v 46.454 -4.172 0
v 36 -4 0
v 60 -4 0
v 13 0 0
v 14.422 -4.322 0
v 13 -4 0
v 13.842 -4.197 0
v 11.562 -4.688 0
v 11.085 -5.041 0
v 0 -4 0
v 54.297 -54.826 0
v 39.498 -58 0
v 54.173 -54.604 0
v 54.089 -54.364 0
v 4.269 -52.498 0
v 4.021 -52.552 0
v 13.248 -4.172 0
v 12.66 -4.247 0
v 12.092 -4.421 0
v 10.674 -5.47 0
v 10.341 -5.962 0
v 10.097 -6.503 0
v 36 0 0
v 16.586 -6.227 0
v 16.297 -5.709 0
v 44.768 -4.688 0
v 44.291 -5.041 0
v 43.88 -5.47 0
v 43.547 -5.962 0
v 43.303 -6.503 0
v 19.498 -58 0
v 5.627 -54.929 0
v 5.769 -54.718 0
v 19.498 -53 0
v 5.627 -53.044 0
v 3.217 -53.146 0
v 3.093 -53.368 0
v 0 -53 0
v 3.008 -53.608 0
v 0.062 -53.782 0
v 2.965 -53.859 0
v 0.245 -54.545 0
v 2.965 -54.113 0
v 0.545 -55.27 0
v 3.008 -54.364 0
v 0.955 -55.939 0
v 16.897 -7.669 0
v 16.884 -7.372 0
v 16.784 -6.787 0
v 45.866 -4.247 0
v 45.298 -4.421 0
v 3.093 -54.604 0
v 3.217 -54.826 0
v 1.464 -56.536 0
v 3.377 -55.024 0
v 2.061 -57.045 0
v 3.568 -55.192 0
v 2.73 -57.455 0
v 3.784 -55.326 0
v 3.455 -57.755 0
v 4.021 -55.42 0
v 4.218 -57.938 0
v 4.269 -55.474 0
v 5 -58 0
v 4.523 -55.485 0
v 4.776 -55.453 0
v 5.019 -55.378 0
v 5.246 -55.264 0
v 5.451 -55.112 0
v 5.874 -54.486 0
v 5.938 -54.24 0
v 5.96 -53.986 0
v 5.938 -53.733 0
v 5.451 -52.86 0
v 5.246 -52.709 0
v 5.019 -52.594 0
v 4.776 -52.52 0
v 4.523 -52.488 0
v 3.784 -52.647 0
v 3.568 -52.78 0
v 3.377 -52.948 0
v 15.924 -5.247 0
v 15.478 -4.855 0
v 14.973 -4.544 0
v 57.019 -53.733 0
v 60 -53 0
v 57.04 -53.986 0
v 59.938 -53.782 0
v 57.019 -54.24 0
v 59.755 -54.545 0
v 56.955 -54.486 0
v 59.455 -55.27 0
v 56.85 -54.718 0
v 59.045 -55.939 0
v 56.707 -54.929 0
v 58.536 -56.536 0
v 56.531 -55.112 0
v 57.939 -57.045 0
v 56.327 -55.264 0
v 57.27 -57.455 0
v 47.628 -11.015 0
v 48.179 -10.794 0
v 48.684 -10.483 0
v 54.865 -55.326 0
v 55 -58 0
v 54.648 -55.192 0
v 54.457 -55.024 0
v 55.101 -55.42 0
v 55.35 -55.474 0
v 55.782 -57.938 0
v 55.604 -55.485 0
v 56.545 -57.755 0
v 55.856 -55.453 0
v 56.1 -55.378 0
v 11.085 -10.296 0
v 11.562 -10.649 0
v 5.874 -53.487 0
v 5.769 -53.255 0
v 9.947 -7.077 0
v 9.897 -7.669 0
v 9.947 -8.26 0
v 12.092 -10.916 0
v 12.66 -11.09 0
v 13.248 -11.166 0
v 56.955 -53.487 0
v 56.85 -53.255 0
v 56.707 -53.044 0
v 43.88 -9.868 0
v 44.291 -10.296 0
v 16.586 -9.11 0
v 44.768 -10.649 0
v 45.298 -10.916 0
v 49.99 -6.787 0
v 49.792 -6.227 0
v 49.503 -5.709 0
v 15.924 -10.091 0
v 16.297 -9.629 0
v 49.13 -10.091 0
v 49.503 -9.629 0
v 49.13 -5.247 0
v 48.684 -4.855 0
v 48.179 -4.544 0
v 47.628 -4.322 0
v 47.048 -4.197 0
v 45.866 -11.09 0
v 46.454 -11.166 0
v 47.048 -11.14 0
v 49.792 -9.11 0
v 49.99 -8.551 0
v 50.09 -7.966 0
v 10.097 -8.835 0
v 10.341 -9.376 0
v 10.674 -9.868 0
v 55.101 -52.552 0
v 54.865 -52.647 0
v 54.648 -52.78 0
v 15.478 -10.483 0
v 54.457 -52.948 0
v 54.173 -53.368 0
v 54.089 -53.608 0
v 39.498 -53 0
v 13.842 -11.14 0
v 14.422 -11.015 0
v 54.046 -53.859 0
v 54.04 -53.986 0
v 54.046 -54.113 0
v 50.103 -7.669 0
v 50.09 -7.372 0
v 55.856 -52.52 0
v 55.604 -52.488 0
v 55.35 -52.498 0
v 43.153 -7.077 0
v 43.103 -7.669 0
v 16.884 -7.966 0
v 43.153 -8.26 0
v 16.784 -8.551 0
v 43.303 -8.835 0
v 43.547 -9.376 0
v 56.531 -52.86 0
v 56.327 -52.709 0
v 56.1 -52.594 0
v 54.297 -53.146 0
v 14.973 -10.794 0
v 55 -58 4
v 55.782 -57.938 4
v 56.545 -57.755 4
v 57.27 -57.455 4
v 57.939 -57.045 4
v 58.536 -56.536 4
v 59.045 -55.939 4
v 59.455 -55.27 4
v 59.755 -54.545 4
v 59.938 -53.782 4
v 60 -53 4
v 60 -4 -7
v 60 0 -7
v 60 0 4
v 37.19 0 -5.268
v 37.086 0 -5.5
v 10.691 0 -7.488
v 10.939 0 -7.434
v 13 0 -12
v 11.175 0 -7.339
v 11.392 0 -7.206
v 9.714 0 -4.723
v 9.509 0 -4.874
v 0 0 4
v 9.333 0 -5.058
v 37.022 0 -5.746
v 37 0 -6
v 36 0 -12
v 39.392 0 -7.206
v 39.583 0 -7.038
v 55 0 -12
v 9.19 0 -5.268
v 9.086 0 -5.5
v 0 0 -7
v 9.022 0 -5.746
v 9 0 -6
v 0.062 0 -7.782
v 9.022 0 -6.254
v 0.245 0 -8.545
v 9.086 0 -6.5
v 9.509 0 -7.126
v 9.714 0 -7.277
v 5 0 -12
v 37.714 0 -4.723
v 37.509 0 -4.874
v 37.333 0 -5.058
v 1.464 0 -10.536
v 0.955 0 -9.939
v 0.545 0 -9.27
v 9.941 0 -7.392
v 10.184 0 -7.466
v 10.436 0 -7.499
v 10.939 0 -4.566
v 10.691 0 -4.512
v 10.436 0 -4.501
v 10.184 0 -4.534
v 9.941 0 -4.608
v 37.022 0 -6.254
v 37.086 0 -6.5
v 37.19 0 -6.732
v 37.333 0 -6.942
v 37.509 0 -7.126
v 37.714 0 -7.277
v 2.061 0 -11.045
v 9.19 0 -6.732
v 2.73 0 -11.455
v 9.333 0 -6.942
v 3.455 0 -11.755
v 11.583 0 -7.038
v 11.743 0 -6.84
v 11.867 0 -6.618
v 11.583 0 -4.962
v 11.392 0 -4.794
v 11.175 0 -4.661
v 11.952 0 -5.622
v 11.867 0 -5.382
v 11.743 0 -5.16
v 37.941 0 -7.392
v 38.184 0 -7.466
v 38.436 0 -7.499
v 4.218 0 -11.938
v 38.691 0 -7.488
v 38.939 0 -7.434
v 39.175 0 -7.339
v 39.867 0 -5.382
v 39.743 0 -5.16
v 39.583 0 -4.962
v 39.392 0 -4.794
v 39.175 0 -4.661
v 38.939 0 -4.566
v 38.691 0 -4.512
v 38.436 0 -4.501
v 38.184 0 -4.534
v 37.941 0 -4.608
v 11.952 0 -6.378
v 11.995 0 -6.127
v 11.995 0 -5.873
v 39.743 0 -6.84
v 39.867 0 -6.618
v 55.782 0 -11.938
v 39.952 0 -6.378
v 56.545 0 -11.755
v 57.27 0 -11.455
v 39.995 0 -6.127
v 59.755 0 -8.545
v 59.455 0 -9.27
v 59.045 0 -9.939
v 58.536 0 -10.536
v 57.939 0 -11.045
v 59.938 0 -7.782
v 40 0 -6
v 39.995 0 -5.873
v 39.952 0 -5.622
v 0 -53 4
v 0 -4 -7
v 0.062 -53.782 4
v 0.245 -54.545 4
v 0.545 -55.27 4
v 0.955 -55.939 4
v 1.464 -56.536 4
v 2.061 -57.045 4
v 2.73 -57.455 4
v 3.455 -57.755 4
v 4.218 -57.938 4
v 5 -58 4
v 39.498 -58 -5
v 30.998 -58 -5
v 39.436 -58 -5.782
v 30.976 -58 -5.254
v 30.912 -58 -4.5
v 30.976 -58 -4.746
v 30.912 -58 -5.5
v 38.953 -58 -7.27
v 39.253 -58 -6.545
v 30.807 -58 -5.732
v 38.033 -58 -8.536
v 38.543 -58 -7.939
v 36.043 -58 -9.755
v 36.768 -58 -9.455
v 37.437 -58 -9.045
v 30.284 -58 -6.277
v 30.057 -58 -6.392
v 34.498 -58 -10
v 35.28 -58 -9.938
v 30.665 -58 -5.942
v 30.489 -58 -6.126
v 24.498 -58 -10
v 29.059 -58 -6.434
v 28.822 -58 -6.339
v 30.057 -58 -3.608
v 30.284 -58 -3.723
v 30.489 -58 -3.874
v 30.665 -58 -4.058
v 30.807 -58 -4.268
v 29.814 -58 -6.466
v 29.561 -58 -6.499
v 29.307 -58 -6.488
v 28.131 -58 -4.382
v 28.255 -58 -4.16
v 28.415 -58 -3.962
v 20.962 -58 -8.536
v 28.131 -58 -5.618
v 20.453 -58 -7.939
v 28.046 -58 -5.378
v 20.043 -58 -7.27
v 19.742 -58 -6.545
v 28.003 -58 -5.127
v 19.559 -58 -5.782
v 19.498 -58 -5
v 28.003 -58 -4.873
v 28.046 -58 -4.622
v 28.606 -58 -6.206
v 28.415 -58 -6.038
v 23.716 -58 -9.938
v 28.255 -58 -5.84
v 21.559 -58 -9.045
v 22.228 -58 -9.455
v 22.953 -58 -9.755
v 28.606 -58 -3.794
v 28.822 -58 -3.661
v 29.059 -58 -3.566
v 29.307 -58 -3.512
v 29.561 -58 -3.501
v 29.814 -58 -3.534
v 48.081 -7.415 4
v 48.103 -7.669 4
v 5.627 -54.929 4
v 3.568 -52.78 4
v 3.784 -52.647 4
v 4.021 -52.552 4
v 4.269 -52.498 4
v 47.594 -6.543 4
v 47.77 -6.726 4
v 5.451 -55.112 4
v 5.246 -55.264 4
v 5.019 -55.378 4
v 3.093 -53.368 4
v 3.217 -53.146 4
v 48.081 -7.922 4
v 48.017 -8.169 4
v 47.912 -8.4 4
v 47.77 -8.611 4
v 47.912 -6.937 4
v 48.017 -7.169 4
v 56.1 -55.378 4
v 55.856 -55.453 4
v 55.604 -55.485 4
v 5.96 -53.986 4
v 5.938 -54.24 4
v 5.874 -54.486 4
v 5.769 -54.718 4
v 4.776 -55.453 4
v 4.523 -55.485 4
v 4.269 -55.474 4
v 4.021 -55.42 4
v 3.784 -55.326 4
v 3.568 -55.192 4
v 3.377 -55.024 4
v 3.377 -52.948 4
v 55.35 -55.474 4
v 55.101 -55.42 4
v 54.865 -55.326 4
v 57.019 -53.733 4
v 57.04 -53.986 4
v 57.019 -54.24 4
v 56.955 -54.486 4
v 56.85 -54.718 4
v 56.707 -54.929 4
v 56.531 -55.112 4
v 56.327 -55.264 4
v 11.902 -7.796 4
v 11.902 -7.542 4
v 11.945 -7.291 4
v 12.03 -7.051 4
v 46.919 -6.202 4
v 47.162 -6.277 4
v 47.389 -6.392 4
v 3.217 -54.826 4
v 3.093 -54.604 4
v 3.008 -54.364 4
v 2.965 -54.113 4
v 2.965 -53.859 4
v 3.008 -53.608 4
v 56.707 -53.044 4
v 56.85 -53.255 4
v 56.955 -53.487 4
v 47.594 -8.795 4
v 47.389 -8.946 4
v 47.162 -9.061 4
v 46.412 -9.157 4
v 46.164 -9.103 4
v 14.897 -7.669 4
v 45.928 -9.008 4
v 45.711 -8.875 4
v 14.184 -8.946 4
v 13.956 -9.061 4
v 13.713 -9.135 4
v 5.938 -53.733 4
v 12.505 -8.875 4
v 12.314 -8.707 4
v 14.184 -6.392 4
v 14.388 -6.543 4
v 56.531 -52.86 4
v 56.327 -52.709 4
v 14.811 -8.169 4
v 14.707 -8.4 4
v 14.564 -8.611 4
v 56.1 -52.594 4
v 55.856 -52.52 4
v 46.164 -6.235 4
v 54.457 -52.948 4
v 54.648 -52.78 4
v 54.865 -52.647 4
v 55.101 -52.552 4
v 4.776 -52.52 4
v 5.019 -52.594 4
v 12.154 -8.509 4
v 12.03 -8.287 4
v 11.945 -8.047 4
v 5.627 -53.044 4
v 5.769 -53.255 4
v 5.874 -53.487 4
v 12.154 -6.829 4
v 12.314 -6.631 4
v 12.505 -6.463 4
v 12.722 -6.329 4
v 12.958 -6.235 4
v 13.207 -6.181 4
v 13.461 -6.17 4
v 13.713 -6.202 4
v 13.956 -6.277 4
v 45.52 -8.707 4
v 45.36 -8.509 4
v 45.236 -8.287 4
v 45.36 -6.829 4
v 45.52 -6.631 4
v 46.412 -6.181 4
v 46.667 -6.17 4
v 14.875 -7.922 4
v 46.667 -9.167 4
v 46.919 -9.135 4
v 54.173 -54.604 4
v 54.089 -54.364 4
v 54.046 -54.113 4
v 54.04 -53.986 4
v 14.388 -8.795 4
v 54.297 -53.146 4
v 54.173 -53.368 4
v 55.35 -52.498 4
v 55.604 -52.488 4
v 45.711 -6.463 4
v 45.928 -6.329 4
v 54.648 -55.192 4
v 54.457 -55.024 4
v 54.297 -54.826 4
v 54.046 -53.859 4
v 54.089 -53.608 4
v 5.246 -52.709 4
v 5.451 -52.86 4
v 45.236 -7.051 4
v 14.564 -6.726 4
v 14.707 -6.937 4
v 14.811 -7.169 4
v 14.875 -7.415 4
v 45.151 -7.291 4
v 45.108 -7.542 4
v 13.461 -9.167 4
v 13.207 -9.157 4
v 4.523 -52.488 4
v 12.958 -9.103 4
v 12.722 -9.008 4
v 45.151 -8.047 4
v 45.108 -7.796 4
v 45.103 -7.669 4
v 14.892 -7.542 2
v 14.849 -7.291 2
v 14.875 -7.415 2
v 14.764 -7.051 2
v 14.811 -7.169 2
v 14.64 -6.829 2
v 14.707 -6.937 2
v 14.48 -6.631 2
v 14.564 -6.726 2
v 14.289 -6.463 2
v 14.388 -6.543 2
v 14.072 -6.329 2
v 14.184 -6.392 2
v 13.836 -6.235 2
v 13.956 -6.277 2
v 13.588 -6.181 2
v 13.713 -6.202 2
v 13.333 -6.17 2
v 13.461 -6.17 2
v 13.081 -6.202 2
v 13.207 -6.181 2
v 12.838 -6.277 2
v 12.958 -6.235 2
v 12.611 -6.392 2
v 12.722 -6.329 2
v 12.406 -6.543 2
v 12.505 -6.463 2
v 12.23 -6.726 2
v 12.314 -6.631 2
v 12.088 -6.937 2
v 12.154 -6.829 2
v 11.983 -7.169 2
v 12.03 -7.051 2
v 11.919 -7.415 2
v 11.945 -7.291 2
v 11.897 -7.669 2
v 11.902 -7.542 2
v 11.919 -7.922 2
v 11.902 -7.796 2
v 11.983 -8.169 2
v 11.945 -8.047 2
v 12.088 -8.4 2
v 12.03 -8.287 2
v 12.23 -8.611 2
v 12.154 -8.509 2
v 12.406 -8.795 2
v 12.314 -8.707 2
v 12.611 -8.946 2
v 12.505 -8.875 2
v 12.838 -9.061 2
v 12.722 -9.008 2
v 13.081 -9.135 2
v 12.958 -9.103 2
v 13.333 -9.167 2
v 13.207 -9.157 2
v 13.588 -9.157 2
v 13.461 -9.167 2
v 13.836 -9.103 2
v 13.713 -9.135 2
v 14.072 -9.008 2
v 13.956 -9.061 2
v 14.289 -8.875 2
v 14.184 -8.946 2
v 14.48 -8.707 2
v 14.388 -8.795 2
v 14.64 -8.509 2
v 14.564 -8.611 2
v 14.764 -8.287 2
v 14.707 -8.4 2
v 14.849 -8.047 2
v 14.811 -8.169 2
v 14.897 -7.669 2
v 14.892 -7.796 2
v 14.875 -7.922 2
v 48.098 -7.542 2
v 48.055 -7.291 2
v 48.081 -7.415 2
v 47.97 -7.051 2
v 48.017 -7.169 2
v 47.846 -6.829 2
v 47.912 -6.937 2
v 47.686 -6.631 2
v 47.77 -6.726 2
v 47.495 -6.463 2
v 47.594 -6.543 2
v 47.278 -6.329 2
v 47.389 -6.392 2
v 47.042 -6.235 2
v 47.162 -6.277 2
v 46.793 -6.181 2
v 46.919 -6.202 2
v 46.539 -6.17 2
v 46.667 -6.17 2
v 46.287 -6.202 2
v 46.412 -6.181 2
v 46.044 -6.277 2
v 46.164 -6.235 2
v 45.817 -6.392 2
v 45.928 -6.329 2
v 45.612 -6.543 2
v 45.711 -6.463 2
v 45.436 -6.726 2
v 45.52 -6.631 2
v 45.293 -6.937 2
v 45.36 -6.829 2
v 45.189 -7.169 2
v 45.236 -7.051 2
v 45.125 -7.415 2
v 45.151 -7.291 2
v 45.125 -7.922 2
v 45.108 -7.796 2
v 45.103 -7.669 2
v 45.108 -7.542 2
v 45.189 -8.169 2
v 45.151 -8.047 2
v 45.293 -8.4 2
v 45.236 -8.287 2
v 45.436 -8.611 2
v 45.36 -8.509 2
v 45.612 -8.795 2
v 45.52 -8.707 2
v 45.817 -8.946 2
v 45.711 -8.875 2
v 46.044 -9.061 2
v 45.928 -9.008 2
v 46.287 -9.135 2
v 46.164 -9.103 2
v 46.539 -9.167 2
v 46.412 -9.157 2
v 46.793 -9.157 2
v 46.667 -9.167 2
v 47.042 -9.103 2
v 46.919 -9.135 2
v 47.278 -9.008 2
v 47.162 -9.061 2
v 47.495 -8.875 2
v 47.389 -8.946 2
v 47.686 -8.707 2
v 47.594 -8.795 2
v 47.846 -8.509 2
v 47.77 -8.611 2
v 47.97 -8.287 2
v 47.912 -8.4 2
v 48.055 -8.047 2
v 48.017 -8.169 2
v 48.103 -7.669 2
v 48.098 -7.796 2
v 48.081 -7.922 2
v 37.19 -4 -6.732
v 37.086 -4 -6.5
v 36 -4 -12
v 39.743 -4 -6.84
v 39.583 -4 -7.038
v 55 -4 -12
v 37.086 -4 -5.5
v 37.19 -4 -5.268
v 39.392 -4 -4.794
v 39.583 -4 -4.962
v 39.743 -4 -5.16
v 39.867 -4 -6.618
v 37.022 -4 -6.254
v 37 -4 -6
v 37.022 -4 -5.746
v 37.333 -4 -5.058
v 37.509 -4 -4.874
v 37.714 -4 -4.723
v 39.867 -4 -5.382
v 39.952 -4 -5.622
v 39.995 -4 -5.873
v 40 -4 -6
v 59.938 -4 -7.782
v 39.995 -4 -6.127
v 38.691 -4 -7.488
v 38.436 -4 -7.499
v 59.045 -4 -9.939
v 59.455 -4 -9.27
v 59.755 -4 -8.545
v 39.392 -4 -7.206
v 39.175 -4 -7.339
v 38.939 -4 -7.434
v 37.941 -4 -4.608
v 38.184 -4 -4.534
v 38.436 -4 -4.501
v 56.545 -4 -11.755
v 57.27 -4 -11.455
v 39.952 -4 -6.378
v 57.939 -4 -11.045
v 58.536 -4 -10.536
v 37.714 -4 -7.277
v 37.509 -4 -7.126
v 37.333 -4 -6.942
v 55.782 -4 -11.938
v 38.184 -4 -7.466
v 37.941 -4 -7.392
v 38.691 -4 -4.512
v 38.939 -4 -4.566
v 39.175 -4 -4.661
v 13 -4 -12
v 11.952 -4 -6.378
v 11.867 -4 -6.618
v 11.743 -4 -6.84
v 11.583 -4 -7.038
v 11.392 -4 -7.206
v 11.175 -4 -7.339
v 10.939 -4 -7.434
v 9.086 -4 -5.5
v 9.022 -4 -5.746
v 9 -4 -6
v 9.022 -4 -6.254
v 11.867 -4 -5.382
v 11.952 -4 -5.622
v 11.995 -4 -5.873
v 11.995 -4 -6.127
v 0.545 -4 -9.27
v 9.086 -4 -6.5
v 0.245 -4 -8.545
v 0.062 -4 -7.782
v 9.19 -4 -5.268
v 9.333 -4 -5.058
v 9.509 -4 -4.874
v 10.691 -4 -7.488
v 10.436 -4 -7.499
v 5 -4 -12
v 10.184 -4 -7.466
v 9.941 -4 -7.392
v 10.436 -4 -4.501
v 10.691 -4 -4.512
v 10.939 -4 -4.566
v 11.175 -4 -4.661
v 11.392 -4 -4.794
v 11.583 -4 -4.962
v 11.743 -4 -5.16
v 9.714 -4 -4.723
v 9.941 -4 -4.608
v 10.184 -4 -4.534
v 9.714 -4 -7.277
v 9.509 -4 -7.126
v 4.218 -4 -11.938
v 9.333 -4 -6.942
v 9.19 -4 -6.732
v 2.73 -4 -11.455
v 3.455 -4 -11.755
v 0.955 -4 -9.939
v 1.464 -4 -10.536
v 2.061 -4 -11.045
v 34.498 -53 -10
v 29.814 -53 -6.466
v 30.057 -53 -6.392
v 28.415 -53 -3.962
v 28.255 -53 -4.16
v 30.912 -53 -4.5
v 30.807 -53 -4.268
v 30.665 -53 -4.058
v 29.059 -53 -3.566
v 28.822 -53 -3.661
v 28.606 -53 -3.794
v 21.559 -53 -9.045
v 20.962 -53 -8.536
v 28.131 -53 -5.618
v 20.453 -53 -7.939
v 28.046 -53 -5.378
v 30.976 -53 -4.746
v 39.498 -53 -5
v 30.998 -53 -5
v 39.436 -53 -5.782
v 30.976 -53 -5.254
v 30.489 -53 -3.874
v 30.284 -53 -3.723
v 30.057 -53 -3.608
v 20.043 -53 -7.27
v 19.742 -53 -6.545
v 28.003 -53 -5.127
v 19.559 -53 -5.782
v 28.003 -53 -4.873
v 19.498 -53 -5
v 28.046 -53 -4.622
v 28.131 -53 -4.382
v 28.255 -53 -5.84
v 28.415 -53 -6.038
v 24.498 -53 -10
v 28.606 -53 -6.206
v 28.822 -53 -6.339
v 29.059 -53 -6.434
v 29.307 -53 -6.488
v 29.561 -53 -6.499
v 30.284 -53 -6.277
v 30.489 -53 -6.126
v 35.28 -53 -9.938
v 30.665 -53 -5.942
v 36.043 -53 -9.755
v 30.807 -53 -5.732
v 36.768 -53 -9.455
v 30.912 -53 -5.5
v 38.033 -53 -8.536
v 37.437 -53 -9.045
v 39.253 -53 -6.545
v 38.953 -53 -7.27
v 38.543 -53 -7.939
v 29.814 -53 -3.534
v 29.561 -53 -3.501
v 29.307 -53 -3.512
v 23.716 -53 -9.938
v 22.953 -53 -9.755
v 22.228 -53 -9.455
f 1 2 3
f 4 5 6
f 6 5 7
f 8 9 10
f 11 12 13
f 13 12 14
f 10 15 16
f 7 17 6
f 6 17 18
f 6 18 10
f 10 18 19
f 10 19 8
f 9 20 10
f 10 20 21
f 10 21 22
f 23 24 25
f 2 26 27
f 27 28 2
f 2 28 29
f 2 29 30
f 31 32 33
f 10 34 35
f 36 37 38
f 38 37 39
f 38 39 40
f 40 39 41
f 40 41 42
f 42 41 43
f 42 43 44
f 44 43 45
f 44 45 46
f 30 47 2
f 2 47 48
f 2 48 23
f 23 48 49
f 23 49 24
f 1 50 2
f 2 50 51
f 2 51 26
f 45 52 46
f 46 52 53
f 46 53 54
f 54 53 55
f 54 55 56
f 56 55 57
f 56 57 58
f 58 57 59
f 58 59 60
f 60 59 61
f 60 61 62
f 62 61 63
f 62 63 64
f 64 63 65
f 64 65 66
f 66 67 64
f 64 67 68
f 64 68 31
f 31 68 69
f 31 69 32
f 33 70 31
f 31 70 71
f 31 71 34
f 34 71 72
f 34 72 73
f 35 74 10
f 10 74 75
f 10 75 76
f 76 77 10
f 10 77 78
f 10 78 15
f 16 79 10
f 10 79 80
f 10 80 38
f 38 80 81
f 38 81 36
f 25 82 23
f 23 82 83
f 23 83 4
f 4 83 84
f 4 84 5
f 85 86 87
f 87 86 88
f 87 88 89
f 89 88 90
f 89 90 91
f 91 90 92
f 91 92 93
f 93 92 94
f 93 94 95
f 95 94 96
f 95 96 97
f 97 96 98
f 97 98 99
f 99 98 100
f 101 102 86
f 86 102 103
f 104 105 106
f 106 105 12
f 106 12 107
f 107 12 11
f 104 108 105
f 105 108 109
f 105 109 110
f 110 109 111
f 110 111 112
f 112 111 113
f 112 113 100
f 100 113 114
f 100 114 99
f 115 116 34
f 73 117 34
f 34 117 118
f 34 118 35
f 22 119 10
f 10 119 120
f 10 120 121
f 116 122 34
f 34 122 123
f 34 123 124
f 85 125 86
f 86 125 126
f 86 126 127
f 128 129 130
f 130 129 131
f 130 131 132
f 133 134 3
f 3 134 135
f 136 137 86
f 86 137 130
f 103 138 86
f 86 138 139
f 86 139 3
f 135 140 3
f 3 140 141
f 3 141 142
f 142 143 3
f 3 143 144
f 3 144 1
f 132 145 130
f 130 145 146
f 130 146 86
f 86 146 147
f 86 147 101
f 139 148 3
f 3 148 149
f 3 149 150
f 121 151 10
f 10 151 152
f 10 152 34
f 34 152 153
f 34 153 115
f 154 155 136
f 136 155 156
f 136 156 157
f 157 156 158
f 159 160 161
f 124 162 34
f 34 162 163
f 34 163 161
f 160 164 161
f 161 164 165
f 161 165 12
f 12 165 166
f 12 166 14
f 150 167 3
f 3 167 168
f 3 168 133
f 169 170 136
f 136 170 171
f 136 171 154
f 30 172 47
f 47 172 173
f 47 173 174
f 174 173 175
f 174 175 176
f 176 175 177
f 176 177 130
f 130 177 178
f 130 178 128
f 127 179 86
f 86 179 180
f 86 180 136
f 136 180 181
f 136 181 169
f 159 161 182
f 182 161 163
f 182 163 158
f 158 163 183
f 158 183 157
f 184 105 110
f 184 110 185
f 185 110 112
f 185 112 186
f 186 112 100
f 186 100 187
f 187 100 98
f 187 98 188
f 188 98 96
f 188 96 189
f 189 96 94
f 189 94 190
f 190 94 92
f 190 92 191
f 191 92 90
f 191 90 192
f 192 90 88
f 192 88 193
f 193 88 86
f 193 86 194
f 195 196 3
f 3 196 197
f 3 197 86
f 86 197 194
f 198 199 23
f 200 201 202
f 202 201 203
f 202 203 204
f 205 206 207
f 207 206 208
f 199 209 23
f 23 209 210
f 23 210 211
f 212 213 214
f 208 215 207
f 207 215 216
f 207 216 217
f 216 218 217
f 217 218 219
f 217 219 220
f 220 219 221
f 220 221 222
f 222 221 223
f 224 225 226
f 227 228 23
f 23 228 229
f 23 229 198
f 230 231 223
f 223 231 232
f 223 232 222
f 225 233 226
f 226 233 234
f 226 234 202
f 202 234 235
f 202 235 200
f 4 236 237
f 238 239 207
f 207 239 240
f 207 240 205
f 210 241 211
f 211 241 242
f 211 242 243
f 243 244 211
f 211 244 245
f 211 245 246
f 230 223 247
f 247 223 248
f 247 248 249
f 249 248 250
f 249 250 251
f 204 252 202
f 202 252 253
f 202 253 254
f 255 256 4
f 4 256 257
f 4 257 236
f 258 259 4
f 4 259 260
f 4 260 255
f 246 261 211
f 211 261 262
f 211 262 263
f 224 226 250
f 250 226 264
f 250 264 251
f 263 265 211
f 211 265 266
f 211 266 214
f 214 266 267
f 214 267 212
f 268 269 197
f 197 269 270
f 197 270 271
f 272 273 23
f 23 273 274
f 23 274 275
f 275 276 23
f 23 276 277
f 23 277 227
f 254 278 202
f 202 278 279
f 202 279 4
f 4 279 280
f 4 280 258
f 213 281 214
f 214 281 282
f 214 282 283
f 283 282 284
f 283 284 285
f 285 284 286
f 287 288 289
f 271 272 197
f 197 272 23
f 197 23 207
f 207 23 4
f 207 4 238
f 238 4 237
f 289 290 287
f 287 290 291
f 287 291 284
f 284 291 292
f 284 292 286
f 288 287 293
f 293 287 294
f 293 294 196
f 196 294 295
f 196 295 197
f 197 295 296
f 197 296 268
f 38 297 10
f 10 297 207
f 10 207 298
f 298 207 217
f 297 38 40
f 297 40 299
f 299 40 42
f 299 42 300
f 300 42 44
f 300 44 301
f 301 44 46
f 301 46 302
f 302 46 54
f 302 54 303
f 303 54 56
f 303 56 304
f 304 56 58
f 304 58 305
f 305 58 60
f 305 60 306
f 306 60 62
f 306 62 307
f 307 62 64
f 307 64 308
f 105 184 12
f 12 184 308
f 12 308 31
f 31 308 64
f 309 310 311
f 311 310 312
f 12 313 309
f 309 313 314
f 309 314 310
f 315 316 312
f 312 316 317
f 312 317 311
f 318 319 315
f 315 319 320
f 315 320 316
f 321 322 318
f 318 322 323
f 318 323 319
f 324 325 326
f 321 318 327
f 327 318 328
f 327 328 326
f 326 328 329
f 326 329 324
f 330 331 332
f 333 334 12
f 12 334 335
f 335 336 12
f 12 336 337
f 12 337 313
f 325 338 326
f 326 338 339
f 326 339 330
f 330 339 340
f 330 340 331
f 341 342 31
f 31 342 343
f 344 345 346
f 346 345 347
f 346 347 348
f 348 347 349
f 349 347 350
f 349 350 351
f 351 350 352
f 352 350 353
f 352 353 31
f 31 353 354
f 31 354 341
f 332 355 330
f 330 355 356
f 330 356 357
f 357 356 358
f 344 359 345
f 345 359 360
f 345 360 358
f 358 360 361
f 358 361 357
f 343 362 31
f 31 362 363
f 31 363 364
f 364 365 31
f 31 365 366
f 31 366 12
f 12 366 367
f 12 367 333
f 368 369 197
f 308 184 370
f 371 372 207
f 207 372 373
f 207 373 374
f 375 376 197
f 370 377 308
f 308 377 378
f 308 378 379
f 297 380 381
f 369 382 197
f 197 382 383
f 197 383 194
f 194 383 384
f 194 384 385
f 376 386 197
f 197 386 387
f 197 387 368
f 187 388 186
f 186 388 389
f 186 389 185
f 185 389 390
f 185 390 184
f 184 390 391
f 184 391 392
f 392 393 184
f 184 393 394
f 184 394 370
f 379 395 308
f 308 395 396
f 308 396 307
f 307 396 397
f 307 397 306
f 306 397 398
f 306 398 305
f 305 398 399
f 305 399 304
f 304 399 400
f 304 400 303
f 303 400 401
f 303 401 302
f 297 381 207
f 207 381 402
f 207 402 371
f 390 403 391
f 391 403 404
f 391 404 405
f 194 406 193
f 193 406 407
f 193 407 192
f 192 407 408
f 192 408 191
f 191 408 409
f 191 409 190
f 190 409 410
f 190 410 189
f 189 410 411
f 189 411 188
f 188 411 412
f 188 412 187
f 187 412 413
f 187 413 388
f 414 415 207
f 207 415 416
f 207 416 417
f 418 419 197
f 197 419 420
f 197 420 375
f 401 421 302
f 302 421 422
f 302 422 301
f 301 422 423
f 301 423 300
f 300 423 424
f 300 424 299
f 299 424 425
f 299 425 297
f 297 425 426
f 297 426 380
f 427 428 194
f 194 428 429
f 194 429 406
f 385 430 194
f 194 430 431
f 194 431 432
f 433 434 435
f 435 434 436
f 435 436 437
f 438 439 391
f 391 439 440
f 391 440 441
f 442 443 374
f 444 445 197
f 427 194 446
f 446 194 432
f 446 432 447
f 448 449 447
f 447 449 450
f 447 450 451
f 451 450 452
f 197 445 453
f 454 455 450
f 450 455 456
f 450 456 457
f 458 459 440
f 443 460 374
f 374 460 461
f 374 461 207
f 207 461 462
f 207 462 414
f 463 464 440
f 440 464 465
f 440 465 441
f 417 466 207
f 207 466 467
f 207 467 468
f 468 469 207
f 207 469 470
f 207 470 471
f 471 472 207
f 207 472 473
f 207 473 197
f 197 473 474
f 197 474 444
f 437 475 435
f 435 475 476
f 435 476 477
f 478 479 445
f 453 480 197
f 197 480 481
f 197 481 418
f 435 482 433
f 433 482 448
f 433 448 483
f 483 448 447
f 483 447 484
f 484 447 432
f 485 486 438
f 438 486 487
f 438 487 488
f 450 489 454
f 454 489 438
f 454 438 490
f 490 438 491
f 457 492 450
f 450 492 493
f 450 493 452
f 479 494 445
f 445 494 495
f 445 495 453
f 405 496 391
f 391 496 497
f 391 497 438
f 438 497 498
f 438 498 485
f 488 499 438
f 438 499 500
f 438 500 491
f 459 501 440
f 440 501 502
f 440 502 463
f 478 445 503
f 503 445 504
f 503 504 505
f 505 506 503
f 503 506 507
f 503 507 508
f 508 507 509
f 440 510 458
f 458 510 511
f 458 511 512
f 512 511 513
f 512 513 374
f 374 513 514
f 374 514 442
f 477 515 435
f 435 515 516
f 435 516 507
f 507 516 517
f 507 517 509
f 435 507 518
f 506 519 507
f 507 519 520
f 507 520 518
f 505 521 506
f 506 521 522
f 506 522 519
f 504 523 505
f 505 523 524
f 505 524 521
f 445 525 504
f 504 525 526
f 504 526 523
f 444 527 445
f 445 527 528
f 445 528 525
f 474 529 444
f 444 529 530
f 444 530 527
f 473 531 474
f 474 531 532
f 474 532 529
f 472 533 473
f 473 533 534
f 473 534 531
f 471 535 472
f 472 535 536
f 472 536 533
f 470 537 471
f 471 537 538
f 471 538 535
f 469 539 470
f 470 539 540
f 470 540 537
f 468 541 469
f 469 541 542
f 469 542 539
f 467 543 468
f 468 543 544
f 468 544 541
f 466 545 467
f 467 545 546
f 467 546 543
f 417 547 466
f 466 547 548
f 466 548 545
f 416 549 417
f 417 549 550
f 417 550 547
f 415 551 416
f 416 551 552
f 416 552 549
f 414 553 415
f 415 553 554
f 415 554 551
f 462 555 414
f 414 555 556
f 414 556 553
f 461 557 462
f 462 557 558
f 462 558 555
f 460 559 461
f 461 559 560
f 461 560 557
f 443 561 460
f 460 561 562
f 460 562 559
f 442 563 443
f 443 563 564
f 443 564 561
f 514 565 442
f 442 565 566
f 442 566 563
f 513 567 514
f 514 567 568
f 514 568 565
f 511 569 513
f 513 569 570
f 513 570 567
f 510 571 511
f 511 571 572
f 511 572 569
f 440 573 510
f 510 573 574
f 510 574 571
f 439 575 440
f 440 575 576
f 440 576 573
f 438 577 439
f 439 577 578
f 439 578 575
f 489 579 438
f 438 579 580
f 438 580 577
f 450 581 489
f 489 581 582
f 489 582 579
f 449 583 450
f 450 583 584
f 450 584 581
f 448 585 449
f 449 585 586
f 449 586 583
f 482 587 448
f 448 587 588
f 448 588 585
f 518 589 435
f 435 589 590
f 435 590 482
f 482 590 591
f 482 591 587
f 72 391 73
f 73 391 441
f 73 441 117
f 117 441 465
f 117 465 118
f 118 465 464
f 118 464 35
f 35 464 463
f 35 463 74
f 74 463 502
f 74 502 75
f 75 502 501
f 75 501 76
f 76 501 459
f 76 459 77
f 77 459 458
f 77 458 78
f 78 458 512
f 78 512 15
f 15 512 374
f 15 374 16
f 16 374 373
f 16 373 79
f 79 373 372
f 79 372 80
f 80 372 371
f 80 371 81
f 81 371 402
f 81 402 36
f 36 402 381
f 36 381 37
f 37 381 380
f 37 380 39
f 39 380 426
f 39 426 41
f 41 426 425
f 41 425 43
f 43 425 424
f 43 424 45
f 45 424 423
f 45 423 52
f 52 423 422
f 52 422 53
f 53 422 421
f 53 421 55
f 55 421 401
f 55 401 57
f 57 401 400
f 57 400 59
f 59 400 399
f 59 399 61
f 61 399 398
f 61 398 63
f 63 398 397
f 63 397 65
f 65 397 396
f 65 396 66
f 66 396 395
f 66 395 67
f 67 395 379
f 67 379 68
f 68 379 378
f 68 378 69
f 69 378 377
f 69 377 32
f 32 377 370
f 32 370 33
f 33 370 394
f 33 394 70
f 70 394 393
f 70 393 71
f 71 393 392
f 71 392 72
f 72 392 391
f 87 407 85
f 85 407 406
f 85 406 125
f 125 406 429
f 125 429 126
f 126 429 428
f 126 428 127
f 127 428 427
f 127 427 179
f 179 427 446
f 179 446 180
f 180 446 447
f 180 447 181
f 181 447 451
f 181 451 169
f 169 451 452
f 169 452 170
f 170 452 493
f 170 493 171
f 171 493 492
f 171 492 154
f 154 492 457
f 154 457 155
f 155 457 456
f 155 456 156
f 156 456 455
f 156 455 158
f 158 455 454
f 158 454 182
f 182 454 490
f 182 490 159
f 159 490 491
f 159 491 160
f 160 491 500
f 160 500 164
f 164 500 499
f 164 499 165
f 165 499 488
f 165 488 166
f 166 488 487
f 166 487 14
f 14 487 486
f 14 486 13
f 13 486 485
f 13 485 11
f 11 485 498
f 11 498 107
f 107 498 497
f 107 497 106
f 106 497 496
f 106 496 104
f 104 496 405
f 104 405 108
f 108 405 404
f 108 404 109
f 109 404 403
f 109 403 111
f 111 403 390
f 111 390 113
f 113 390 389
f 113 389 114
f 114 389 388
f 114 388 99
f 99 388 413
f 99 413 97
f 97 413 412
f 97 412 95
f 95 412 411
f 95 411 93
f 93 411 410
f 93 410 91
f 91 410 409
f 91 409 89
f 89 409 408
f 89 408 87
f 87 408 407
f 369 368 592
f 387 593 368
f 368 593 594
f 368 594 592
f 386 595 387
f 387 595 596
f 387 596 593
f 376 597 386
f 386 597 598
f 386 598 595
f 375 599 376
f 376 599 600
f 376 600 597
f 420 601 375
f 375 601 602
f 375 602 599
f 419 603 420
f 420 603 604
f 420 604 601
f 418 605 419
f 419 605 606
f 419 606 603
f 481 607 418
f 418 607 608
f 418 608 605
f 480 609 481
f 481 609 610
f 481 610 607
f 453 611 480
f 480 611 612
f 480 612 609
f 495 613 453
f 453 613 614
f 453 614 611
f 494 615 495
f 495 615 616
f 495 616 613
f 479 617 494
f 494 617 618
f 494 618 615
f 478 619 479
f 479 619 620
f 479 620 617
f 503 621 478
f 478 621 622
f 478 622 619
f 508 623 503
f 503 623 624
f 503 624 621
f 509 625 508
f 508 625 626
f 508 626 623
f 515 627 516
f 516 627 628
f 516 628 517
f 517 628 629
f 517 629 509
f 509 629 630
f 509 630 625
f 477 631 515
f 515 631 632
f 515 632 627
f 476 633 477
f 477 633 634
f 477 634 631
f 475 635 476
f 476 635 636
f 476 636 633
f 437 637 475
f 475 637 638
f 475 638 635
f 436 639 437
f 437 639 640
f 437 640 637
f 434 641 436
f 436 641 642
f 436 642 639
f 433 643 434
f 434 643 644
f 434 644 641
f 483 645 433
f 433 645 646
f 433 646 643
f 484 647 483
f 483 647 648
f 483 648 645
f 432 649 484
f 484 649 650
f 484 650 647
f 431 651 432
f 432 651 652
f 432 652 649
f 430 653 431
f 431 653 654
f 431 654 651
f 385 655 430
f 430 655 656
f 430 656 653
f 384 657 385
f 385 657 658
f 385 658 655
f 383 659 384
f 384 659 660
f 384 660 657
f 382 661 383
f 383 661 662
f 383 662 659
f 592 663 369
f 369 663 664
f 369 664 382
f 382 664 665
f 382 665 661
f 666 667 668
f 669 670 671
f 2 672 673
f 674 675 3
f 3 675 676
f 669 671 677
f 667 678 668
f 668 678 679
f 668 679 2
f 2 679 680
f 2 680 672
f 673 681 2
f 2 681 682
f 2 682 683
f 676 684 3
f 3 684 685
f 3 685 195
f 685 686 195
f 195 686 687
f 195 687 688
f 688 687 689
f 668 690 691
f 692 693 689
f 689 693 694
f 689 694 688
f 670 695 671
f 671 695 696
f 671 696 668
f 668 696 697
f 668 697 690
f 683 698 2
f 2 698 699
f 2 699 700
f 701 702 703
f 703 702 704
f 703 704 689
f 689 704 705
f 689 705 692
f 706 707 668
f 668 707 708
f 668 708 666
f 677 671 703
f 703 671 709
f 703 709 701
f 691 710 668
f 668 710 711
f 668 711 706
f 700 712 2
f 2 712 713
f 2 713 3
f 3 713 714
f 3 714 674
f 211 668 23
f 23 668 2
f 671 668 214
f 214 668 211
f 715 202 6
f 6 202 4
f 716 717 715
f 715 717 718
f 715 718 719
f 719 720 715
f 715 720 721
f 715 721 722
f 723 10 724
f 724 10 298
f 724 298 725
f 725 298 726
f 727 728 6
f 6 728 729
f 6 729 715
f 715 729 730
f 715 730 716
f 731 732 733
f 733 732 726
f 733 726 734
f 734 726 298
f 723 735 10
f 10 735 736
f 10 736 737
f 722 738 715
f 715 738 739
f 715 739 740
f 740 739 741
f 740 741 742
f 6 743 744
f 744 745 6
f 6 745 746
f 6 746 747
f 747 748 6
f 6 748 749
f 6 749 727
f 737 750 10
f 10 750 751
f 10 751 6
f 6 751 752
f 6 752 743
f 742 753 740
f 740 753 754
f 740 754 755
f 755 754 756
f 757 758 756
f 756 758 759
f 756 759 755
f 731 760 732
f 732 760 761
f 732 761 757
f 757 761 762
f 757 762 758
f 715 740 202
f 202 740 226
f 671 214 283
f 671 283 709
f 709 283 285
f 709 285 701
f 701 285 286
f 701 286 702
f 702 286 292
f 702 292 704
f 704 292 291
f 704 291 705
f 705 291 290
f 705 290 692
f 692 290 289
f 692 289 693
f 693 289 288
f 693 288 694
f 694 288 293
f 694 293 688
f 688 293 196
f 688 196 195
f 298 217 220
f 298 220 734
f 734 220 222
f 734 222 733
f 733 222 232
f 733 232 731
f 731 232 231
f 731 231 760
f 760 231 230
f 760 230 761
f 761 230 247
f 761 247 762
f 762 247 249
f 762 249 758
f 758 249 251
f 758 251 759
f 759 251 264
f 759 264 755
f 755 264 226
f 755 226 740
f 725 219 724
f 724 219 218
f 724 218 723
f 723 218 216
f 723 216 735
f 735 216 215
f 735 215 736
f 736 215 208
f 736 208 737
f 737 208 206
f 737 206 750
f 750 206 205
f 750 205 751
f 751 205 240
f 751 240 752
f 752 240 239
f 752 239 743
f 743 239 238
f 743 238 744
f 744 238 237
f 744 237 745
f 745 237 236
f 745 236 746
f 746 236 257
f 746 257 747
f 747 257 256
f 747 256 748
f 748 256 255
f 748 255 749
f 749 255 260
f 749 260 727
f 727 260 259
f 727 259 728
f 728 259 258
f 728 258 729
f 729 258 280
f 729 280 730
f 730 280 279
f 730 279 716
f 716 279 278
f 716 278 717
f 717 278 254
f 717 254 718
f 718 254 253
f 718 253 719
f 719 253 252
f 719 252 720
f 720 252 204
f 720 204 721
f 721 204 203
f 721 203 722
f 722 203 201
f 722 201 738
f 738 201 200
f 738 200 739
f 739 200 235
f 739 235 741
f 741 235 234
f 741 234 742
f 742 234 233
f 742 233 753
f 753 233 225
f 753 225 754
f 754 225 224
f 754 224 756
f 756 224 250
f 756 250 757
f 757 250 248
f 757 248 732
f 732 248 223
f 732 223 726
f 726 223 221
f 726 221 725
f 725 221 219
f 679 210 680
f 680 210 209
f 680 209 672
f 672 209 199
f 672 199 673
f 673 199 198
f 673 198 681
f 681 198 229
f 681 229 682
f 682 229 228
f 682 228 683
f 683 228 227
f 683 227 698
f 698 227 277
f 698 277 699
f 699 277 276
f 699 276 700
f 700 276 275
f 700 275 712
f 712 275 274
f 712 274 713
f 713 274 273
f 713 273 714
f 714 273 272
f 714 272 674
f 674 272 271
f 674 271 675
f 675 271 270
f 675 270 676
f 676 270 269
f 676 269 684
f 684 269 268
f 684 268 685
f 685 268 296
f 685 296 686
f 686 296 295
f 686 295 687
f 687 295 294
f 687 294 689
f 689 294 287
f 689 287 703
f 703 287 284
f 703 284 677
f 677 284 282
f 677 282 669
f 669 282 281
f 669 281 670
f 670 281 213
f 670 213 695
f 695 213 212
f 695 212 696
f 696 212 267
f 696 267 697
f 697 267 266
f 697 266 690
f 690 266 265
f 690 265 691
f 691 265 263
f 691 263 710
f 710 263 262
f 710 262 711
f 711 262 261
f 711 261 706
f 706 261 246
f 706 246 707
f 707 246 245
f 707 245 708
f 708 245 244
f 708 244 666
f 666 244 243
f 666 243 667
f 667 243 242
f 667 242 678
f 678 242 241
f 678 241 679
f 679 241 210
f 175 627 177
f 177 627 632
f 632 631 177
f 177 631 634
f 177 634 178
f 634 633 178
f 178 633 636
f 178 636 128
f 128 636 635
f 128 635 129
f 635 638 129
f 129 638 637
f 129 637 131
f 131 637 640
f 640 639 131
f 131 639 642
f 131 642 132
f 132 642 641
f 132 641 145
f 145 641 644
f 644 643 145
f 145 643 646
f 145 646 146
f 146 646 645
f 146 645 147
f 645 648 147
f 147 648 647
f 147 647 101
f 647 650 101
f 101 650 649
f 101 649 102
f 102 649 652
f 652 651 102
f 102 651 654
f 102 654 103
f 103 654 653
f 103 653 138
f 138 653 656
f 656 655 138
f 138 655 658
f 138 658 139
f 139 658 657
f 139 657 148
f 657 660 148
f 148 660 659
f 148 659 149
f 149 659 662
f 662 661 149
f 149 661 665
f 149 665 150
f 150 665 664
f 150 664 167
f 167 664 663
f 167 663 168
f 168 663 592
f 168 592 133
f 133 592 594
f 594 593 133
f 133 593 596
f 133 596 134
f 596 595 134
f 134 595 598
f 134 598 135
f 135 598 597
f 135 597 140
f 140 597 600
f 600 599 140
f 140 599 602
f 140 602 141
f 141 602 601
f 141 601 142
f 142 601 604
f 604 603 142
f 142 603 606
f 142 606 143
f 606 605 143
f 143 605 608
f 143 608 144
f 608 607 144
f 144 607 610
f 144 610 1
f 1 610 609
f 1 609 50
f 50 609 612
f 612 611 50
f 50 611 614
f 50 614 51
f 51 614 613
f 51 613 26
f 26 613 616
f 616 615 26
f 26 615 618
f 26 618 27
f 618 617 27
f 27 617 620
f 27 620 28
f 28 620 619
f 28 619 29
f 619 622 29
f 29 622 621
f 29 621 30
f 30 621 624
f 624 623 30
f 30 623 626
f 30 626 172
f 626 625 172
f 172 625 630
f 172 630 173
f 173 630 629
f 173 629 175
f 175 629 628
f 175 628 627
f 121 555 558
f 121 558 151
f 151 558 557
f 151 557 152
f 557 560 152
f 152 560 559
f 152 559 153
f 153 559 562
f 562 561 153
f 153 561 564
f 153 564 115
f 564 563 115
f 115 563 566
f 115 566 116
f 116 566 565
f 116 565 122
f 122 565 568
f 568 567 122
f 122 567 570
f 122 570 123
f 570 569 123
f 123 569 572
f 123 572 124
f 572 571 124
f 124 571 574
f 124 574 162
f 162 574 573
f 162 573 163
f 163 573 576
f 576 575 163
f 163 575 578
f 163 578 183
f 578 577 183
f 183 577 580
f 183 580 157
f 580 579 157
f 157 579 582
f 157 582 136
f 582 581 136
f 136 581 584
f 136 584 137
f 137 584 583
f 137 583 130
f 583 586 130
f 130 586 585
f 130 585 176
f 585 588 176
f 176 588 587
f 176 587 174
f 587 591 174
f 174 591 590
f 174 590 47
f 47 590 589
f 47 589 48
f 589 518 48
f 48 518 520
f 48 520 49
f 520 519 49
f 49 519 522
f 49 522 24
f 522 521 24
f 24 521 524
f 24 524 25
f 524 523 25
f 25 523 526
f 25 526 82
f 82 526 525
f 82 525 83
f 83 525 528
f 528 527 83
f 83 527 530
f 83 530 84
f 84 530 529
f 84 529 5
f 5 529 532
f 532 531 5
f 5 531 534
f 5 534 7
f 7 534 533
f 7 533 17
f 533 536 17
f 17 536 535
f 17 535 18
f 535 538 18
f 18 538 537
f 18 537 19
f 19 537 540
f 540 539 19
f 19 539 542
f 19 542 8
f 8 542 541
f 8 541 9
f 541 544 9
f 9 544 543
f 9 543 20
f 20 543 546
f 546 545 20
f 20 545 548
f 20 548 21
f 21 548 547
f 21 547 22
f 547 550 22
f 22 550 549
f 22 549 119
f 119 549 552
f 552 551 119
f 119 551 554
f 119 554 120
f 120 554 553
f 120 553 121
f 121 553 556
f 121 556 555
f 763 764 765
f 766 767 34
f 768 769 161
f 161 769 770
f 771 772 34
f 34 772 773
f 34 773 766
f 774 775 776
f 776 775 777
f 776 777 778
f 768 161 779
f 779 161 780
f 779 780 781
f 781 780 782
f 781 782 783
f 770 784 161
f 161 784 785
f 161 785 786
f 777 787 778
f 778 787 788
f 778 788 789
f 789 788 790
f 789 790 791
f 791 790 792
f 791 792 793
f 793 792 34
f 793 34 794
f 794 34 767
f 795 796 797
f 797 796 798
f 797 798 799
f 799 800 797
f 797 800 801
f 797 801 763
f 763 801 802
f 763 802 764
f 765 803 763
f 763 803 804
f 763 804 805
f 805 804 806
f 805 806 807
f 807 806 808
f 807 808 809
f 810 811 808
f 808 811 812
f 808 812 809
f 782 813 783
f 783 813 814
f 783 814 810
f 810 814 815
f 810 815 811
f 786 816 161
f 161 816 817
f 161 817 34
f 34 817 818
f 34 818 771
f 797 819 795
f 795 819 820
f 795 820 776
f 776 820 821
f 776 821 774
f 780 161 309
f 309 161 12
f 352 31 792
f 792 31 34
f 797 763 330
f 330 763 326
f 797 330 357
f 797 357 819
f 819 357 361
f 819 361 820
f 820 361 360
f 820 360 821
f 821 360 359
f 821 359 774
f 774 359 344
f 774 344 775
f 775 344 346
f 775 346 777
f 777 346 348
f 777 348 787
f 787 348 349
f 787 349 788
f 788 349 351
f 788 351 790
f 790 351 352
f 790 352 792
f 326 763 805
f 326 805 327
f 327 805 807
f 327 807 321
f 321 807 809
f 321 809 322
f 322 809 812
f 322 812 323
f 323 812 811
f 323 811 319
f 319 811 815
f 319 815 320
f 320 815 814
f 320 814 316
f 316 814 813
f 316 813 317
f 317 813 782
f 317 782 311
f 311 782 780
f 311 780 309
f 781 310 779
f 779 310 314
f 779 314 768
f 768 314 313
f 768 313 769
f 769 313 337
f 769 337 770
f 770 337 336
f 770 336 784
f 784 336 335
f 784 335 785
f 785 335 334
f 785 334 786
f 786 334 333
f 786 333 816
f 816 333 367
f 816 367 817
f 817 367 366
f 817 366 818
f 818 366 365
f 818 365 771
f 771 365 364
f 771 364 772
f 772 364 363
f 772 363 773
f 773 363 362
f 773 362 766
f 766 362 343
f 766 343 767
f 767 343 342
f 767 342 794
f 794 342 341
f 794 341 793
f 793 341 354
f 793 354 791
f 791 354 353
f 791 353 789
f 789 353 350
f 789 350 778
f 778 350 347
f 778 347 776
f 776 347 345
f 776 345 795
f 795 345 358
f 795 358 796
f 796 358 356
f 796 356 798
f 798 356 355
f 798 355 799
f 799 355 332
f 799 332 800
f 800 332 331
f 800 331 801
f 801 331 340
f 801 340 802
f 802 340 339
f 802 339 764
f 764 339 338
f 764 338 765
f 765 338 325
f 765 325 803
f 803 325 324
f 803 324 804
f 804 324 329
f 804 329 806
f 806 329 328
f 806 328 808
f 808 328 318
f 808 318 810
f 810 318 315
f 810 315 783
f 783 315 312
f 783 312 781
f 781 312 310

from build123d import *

# Parameters (mm, degrees)
BOSS_EXTRU_1_DEPTH      = 4
ESQUISSE2_R             = 1.5
ENL_V_MAT_EXTRU_1_DEPTH = 4
ESQUISSE3_W             = 5
ESQUISSE3_H             = 4
BOSS_EXTRU_2_DEPTH      = 12
BOSS_EXTRU_3_DEPTH      = 4
ESQUISSE5_R             = 1.5
ENL_V_MAT_EXTRU_2_DEPTH = 4
CHANFREIN2_SIZE         = 2
ESQUISSE6_W             = 20
ESQUISSE6_H             = 5
BOSS_EXTRU_4_DEPTH      = 10
CONG_1_R                = 5
ESQUISSE7_R             = 1.5
ENL_V_MAT_EXTRU_3_DEPTH = 10


with BuildPart() as part:
    # Esquisse1 → Boss.-Extru.1 (new body)
    with BuildSketch(Plane.XY):
        with BuildLine():
            Line((0, 0), (0, -53))
            ThreePointArc((0, -53), (1.464466094, -56.535533906), (5, -58))
            Line((5, -58), (55, -58))
            ThreePointArc((55, -58), (58.535533906, -56.535533906), (60, -53))
            Line((60, -53), (60, 0))
            Line((60, 0), (0, 0))
        make_face()
    extrude(amount=BOSS_EXTRU_1_DEPTH)

    # Esquisse2 → Enlèv. mat.-Extru.1 (cut)
    with BuildSketch(Plane.XY.offset(4)):
        with Locations((13.397040157, -7.66880337)):
            Circle(ESQUISSE2_R)
        with Locations((4.459764877, -53.98621161)):
            Circle(ESQUISSE2_R)
        with Locations((55.540235123, -53.98621161)):
            Circle(ESQUISSE2_R)
        with Locations((46.602959843, -7.66880337)):
            Circle(ESQUISSE2_R)
    extrude(amount=-ENL_V_MAT_EXTRU_1_DEPTH, mode=Mode.SUBTRACT)

    # Esquisse3 → Boss.-Extru.2 (add)
    with BuildSketch(Plane(origin=(0, 0, 0), x_dir=(-1, 0, 0), z_dir=(0, 0, -1))):
        with Locations((-38.5, -2)):
            Rectangle(ESQUISSE3_W, ESQUISSE3_H)
        with Locations((-10.5, -2)):
            Rectangle(ESQUISSE3_W, ESQUISSE3_H)
    extrude(amount=BOSS_EXTRU_2_DEPTH)

    # Esquisse4 → Boss.-Extru.3 (add)
    with BuildSketch(Plane(origin=(0, 0, 0), x_dir=(1, 0, 0), z_dir=(0, 1, 0))):
        with BuildLine():
            Line((0, 0), (8, 0))
            Line((8, 0), (8, 12))
            Line((8, 12), (5, 12))
            ThreePointArc((5, 12), (1.464466094, 10.535533906), (0, 7))
            Line((0, 7), (0, 0))
        make_face()
        with BuildLine():
            Line((60, 0), (41, 0))
            Line((41, 0), (41, 12))
            Line((41, 12), (55, 12))
            ThreePointArc((55, 12), (58.535533906, 10.535533906), (60, 7))
            Line((60, 7), (60, 0))
        make_face()
    extrude(amount=-BOSS_EXTRU_3_DEPTH)

    # Esquisse5 → Enlèv. mat.-Extru.2 (cut)
    with BuildSketch(Plane(origin=(0, 0, 0), x_dir=(1, 0, 0), z_dir=(0, 1, 0))):
        with Locations((10.5, 6)):
            Circle(ESQUISSE5_R)
        with Locations((38.5, 6)):
            Circle(ESQUISSE5_R)
    extrude(amount=-ENL_V_MAT_EXTRU_2_DEPTH, mode=Mode.SUBTRACT)

    # Chanfrein2
    chanfrein2_edges = [part.edges().sort_by_distance(p)[0] for p in [
        (45.102959843, -7.66880337, 0),
        (11.897040157, -7.66880337, 0),
    ]]
    chamfer(chanfrein2_edges, length=CHANFREIN2_SIZE)

    # Esquisse6 → Boss.-Extru.4 (add)
    with BuildSketch(Plane(origin=(0, 0, 0), x_dir=(-1, 0, 0), z_dir=(0, 0, -1))):
        with Locations((-29.497744904, -55.5)):
            Rectangle(ESQUISSE6_W, ESQUISSE6_H)
    extrude(amount=BOSS_EXTRU_4_DEPTH)

    # Congé1
    cong_1_edges = [part.edges().sort_by_distance(p)[0] for p in [
        (39.497744904, -55.5, -10),
        (19.497744904, -55.5, -10),
    ]]
    fillet(cong_1_edges, radius=CONG_1_R)

    # Esquisse7 → Enlèv. mat.-Extru.3 (cut)
    with BuildSketch(Plane.XZ.offset(58)):
        with Locations((29.497744904, -5)):
            Circle(ESQUISSE7_R)
    extrude(amount=-ENL_V_MAT_EXTRU_3_DEPTH, mode=Mode.SUBTRACT)


solid = part.part
